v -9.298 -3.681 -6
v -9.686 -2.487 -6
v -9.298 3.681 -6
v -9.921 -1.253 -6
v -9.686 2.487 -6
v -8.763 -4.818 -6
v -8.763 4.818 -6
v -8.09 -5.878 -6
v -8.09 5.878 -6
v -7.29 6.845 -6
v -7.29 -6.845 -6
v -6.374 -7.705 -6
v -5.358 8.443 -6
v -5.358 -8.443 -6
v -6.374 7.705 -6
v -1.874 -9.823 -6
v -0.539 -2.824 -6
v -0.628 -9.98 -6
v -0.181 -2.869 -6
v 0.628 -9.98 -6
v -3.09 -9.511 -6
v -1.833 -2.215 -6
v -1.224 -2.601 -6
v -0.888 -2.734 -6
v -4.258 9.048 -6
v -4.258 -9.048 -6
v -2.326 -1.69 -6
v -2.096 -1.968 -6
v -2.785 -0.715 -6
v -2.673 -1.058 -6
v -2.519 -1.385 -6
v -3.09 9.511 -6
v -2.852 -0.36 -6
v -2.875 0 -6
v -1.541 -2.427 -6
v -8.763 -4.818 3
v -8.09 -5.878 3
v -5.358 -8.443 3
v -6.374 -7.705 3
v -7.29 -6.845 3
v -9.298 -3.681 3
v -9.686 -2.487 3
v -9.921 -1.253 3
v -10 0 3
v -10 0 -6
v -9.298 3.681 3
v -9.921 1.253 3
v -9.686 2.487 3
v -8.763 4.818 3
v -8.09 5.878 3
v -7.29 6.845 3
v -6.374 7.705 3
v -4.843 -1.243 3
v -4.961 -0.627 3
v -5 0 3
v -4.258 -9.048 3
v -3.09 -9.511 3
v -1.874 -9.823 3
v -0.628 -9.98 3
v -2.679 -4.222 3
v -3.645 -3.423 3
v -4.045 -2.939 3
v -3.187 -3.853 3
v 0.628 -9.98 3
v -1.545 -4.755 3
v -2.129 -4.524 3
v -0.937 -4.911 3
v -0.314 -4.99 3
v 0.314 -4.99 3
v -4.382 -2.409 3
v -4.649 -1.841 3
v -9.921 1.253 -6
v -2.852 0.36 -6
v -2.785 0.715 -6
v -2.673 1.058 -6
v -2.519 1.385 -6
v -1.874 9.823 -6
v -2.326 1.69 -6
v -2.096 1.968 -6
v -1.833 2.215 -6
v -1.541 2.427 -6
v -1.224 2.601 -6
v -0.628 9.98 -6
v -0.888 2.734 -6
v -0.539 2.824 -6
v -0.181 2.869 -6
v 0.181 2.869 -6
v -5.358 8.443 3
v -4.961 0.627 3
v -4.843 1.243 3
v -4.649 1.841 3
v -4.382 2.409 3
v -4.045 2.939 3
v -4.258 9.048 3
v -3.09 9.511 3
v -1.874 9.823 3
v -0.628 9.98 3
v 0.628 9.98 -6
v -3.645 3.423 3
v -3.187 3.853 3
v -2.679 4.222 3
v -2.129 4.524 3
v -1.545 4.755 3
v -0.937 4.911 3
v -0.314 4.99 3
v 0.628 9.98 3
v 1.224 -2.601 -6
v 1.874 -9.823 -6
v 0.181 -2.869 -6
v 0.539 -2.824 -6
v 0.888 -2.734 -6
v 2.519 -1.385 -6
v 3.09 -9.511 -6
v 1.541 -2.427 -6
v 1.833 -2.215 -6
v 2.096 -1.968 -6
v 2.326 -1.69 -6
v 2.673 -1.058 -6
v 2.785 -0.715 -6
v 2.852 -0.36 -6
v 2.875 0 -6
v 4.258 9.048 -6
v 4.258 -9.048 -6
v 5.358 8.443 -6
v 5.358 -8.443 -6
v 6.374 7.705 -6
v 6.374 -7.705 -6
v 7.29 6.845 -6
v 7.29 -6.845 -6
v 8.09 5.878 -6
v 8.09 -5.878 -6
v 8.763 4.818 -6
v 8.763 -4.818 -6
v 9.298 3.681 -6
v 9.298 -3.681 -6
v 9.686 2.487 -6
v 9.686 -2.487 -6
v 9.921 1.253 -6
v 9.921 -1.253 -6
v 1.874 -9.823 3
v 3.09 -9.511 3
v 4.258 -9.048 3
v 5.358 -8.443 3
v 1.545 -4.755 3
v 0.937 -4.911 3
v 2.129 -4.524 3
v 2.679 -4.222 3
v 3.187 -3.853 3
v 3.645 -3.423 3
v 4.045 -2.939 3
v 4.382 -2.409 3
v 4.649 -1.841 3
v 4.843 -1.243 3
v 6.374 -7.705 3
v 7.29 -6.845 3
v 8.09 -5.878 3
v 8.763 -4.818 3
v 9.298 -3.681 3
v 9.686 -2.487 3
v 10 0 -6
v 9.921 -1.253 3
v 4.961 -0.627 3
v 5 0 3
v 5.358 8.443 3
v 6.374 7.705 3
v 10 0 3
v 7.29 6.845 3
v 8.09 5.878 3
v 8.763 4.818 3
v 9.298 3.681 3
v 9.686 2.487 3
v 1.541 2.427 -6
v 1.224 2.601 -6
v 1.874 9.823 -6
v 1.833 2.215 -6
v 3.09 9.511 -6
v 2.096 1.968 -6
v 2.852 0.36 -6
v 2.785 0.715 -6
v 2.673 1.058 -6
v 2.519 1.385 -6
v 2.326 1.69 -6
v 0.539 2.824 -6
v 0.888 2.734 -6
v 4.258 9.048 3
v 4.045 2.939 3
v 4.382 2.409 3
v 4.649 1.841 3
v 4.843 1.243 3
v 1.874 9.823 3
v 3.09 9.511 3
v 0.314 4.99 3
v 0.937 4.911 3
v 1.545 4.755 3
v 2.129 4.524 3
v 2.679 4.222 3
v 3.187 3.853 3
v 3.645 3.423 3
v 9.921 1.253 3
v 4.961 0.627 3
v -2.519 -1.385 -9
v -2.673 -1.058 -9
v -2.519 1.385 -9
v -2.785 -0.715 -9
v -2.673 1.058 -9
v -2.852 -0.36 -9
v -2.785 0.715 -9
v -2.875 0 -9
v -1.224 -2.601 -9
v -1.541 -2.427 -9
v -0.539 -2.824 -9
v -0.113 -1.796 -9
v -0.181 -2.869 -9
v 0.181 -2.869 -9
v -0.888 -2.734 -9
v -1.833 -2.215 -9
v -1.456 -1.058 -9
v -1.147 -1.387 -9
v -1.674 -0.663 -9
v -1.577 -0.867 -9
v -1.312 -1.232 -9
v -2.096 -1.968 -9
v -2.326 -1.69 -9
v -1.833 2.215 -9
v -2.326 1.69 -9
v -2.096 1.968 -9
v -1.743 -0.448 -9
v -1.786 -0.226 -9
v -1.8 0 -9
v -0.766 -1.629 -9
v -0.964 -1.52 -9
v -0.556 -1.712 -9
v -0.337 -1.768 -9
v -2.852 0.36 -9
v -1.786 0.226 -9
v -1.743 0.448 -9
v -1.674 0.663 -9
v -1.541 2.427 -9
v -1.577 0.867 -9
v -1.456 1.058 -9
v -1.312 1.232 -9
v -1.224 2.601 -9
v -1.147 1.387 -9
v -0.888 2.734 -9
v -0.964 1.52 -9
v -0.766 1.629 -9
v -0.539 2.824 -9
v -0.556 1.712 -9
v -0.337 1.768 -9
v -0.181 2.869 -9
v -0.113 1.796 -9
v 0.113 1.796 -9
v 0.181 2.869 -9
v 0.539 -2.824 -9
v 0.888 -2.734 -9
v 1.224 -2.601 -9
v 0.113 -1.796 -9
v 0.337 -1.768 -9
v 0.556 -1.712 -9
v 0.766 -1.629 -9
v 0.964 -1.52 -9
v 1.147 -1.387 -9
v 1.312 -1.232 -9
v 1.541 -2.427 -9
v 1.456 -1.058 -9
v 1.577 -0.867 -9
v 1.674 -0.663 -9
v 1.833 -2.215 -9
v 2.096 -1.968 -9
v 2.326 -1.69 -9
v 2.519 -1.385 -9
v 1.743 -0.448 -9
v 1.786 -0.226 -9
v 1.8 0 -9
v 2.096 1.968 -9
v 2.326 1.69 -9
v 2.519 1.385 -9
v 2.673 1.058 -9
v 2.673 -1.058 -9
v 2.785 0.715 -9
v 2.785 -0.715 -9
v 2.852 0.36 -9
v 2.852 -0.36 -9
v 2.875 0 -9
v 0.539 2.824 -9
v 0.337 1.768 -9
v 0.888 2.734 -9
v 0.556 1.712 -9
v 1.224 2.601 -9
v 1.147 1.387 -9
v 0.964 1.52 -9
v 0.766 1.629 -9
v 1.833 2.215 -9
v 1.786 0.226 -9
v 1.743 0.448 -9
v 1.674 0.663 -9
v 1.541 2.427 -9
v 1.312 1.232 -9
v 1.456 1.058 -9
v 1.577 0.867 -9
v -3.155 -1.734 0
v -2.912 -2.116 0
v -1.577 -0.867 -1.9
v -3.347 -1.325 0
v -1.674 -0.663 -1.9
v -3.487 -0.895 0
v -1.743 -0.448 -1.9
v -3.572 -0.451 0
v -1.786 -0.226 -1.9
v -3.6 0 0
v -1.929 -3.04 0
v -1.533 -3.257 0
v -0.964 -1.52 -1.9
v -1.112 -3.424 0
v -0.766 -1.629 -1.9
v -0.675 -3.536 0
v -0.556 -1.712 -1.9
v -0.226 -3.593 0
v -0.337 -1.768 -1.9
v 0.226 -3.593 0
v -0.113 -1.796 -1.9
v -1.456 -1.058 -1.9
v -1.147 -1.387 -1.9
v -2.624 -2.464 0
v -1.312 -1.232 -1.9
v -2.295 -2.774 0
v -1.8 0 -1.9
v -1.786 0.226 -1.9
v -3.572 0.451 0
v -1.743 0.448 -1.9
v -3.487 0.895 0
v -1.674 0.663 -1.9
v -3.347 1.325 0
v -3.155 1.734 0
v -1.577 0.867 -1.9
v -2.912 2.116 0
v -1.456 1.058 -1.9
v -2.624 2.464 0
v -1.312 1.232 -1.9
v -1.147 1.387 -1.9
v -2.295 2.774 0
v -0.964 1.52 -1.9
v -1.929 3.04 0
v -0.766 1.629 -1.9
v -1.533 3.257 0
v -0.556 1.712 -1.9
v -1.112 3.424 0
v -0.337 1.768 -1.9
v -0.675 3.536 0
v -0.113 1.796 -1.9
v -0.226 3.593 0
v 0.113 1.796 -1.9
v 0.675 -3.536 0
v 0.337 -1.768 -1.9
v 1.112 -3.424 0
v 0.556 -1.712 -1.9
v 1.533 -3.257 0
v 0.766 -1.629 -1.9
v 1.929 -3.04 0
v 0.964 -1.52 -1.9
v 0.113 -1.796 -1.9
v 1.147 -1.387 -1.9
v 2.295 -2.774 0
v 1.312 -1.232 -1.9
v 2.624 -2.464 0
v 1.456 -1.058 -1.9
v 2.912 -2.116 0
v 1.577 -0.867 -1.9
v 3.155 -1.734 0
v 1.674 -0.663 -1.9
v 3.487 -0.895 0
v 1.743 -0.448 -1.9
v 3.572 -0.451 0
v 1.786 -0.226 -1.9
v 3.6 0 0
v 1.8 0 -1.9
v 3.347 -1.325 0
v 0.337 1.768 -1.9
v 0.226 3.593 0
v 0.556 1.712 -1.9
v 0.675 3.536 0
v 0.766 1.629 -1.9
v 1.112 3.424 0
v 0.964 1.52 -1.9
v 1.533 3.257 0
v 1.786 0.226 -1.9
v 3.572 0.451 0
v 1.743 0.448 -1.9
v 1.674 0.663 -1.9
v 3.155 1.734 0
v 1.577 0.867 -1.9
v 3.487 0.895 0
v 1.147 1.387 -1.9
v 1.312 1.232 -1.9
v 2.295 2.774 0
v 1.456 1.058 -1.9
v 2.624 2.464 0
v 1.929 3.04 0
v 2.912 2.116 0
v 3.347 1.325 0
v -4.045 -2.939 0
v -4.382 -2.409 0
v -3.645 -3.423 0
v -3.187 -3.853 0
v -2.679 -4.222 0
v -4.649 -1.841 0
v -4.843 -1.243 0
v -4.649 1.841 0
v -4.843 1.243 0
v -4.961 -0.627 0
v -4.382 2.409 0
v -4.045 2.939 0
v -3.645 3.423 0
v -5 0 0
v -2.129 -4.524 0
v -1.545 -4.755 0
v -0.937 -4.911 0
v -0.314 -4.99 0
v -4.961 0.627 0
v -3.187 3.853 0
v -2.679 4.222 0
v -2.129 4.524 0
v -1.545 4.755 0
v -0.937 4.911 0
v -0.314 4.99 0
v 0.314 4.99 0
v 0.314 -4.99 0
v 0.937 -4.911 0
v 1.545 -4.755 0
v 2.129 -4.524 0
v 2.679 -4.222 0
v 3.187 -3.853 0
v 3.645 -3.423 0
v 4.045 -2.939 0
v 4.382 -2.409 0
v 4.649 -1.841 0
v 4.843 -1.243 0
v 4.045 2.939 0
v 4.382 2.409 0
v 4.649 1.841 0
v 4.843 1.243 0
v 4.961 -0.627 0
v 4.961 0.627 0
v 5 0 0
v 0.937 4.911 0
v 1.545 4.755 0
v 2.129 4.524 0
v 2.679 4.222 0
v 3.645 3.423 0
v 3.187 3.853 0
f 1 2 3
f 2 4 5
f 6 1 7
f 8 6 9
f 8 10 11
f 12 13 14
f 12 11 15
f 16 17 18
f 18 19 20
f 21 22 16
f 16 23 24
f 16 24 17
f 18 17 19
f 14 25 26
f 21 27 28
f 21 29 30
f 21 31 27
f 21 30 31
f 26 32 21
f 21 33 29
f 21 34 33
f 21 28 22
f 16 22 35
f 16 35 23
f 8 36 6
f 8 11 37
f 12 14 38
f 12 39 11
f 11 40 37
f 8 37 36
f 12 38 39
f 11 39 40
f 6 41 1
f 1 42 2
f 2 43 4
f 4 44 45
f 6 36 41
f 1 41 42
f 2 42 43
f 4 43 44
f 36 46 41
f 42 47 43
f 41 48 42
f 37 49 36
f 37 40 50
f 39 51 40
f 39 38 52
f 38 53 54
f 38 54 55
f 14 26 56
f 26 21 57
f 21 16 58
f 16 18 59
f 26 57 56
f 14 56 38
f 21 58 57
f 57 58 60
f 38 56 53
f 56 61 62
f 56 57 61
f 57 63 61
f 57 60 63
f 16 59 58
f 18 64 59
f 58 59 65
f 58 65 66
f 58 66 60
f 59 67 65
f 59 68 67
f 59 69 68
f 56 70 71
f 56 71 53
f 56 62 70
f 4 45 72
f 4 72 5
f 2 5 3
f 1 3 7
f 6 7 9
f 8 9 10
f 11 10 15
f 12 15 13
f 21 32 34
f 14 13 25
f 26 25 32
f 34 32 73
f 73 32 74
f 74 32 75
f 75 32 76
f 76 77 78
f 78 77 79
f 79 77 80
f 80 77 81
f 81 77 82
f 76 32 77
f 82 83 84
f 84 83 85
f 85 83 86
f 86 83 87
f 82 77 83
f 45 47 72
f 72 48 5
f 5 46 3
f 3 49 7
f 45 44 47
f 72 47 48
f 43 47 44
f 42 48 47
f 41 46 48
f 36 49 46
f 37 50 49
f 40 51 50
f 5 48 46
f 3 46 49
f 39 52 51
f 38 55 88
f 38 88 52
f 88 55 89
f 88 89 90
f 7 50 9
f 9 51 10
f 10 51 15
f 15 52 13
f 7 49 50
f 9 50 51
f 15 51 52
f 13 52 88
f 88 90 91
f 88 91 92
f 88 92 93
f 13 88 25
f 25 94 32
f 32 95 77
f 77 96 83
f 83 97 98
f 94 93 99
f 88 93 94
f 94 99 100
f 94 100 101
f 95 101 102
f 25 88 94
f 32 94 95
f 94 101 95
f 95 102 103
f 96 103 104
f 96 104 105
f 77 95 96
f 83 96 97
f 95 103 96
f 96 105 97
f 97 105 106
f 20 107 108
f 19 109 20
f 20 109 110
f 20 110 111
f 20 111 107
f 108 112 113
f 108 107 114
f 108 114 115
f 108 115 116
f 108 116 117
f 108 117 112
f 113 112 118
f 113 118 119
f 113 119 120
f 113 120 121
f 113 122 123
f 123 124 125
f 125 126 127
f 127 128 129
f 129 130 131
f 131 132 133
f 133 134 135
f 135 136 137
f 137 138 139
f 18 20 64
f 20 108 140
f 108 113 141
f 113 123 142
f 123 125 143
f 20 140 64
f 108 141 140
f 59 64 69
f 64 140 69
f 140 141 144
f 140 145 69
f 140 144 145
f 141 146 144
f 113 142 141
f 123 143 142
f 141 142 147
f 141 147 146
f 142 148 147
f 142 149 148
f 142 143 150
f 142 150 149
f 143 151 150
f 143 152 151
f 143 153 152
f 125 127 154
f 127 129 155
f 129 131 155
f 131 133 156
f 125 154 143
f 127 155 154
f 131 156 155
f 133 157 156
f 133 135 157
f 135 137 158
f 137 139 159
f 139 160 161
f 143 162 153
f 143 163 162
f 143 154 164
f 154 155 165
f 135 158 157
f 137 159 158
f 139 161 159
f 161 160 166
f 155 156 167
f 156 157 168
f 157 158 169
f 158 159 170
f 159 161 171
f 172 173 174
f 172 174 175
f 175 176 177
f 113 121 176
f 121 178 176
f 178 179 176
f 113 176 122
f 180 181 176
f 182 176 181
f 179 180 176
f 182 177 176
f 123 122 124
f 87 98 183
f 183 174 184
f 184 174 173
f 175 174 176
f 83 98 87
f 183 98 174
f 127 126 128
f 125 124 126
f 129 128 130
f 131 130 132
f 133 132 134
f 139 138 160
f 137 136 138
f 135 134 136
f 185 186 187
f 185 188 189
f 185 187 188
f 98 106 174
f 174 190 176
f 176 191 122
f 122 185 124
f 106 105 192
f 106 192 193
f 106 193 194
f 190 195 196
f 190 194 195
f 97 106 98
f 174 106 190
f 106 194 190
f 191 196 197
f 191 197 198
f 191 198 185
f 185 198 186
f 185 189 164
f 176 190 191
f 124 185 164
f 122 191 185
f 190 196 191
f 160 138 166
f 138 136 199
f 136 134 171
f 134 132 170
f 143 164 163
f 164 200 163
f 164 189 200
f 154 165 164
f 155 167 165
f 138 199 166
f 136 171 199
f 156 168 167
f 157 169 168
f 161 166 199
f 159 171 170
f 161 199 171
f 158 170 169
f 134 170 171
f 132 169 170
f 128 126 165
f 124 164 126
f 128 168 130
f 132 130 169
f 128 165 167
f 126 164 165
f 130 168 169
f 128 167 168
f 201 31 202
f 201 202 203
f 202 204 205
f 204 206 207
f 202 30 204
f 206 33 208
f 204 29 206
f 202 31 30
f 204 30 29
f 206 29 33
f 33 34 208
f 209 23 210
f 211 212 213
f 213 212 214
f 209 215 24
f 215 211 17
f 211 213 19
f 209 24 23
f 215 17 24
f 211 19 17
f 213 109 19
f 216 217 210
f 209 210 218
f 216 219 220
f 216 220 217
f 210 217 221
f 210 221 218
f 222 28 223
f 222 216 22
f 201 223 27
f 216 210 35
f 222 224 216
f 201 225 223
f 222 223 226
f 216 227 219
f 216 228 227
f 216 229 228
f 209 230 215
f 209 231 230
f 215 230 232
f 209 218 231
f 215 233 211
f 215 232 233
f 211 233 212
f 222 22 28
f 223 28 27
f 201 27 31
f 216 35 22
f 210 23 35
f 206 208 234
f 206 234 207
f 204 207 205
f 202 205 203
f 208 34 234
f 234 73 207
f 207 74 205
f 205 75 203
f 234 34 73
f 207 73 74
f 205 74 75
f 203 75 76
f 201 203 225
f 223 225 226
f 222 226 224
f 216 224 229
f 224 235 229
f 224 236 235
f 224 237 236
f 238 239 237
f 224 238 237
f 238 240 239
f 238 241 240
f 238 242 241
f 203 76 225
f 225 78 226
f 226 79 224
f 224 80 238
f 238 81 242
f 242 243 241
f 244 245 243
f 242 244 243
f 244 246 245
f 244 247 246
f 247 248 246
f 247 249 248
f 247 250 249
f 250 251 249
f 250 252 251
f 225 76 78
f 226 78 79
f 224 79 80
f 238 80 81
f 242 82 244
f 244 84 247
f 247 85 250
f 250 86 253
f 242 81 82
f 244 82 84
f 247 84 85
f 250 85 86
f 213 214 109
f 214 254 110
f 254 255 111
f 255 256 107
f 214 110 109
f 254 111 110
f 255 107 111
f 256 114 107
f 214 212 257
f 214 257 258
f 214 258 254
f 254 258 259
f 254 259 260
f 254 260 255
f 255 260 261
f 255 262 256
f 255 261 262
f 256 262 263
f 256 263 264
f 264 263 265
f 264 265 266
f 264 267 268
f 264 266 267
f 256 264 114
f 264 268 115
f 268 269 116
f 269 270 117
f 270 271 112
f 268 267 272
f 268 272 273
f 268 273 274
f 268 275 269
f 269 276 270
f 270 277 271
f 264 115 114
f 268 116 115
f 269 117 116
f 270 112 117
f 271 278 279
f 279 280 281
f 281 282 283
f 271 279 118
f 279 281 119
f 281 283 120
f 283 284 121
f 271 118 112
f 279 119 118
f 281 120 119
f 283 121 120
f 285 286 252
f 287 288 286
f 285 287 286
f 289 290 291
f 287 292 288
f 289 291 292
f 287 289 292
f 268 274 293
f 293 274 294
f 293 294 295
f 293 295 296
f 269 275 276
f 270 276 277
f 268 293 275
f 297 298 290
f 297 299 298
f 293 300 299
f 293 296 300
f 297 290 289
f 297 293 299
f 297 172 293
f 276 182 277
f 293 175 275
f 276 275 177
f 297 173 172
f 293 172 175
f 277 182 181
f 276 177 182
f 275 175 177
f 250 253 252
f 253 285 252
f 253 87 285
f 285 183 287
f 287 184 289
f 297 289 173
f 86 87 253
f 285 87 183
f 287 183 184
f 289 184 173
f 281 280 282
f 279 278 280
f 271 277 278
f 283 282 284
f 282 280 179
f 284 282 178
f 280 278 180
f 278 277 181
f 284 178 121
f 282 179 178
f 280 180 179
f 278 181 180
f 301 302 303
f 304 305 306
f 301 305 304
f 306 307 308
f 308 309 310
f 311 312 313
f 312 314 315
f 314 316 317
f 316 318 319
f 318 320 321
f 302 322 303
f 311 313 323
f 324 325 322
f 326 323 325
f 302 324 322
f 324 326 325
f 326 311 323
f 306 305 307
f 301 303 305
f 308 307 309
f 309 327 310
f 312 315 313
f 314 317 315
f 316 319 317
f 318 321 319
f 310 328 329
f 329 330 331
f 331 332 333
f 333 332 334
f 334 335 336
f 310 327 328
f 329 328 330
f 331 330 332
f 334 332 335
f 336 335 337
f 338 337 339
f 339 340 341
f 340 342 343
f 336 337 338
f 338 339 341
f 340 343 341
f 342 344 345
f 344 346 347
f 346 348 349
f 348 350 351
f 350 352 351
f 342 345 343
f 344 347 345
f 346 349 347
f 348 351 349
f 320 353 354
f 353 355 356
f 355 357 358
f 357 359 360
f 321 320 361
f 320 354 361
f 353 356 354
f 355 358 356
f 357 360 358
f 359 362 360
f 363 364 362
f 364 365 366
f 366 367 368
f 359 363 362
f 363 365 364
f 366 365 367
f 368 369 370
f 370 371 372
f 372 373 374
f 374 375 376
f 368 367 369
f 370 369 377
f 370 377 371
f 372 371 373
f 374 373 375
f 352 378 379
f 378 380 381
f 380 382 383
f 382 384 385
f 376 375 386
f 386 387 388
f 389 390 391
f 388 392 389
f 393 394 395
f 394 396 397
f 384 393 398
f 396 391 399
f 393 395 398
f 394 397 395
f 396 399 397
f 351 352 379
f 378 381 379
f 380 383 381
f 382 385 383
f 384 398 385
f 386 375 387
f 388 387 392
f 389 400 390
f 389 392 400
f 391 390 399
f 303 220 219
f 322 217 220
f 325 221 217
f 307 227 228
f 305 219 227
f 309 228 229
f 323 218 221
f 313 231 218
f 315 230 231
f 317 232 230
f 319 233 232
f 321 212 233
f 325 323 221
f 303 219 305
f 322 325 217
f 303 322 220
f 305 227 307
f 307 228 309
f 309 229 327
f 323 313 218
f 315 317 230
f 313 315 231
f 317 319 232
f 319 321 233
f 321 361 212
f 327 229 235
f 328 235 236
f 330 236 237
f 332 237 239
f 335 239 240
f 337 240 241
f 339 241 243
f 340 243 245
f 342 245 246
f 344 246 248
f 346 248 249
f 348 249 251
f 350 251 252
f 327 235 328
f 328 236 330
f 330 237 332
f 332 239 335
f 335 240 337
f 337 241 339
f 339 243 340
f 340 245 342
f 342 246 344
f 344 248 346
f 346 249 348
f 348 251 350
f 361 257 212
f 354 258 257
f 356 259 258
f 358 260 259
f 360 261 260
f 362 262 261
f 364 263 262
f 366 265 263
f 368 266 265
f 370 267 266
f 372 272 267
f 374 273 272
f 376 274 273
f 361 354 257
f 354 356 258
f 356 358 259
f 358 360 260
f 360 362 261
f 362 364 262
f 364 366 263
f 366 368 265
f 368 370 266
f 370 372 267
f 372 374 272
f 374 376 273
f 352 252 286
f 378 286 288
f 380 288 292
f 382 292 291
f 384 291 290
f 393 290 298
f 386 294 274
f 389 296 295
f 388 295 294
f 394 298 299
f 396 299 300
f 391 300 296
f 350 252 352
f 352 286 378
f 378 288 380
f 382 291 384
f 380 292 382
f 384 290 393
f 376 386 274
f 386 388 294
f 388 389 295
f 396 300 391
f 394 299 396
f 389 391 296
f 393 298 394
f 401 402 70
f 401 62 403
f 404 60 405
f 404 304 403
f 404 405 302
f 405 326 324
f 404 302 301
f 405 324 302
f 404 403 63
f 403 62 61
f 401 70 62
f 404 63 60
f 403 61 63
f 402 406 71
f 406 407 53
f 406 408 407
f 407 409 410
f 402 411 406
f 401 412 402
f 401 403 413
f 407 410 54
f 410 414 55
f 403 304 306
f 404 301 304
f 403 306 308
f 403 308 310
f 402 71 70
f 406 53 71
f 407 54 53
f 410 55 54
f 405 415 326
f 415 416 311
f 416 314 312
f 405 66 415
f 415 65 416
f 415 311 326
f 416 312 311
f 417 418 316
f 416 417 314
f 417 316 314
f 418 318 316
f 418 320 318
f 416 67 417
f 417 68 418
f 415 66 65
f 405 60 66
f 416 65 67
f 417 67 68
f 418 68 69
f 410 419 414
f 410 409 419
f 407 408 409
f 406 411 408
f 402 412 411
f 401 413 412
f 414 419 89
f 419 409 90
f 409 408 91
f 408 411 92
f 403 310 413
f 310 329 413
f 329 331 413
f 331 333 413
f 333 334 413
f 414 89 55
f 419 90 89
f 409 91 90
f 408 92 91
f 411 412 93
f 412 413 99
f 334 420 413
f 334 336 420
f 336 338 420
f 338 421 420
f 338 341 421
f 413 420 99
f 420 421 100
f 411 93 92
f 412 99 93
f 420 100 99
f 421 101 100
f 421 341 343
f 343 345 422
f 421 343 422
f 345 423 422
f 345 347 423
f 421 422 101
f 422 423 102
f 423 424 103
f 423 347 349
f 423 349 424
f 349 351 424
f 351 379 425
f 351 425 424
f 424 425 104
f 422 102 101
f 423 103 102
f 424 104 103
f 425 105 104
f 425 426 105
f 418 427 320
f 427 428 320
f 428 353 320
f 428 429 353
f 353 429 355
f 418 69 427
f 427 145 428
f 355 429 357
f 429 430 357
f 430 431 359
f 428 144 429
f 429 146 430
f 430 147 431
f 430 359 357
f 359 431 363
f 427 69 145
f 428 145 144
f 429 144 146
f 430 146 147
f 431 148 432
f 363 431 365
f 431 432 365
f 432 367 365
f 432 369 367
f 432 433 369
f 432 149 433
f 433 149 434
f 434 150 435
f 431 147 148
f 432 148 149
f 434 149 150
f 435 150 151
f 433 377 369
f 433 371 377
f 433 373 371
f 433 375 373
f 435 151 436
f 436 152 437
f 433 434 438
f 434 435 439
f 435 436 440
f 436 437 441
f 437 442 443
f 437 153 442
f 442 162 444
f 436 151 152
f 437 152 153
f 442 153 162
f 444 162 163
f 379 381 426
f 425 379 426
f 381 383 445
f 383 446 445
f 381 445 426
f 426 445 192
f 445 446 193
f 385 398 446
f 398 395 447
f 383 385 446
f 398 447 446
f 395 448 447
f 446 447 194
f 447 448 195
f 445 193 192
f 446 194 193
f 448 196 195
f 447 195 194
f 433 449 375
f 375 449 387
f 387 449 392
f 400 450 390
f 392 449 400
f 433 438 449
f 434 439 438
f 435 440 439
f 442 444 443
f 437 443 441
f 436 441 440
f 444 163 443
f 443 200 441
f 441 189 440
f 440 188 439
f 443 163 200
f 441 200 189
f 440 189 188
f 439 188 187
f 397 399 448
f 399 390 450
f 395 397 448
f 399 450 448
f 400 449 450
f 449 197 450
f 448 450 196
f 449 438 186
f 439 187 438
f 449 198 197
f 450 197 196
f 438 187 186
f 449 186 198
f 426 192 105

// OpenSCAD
$fn = 50;


difference() {
	union() {
		translate(v = [0, 0, -6.0000000000]) {
			cylinder(h = 9, r = 10.0000000000);
		}
		#translate(v = [0, 0, -9.0000000000]) {
			cylinder(h = 9, r = 2.8750000000);
		}
	}
	union() {
		translate(v = [0, 0, 0]) {
			rotate(a = [0, 0, 0]) {
				difference() {
					union() {
						translate(v = [0, 0, -9.0000000000]) {
							cylinder(h = 9, r = 1.5000000000);
						}
						translate(v = [0, 0, -1.9000000000]) {
							cylinder(h = 1.9000000000, r1 = 1.8000000000, r2 = 3.6000000000);
						}
						translate(v = [0, 0, -9.0000000000]) {
							cylinder(h = 9, r = 1.8000000000);
						}
						translate(v = [0, 0, -9.0000000000]) {
							cylinder(h = 9, r = 1.5000000000);
						}
					}
					union();
				}
			}
		}
		#cylinder(h = 3, r = 5.0000000000);
	}
}
